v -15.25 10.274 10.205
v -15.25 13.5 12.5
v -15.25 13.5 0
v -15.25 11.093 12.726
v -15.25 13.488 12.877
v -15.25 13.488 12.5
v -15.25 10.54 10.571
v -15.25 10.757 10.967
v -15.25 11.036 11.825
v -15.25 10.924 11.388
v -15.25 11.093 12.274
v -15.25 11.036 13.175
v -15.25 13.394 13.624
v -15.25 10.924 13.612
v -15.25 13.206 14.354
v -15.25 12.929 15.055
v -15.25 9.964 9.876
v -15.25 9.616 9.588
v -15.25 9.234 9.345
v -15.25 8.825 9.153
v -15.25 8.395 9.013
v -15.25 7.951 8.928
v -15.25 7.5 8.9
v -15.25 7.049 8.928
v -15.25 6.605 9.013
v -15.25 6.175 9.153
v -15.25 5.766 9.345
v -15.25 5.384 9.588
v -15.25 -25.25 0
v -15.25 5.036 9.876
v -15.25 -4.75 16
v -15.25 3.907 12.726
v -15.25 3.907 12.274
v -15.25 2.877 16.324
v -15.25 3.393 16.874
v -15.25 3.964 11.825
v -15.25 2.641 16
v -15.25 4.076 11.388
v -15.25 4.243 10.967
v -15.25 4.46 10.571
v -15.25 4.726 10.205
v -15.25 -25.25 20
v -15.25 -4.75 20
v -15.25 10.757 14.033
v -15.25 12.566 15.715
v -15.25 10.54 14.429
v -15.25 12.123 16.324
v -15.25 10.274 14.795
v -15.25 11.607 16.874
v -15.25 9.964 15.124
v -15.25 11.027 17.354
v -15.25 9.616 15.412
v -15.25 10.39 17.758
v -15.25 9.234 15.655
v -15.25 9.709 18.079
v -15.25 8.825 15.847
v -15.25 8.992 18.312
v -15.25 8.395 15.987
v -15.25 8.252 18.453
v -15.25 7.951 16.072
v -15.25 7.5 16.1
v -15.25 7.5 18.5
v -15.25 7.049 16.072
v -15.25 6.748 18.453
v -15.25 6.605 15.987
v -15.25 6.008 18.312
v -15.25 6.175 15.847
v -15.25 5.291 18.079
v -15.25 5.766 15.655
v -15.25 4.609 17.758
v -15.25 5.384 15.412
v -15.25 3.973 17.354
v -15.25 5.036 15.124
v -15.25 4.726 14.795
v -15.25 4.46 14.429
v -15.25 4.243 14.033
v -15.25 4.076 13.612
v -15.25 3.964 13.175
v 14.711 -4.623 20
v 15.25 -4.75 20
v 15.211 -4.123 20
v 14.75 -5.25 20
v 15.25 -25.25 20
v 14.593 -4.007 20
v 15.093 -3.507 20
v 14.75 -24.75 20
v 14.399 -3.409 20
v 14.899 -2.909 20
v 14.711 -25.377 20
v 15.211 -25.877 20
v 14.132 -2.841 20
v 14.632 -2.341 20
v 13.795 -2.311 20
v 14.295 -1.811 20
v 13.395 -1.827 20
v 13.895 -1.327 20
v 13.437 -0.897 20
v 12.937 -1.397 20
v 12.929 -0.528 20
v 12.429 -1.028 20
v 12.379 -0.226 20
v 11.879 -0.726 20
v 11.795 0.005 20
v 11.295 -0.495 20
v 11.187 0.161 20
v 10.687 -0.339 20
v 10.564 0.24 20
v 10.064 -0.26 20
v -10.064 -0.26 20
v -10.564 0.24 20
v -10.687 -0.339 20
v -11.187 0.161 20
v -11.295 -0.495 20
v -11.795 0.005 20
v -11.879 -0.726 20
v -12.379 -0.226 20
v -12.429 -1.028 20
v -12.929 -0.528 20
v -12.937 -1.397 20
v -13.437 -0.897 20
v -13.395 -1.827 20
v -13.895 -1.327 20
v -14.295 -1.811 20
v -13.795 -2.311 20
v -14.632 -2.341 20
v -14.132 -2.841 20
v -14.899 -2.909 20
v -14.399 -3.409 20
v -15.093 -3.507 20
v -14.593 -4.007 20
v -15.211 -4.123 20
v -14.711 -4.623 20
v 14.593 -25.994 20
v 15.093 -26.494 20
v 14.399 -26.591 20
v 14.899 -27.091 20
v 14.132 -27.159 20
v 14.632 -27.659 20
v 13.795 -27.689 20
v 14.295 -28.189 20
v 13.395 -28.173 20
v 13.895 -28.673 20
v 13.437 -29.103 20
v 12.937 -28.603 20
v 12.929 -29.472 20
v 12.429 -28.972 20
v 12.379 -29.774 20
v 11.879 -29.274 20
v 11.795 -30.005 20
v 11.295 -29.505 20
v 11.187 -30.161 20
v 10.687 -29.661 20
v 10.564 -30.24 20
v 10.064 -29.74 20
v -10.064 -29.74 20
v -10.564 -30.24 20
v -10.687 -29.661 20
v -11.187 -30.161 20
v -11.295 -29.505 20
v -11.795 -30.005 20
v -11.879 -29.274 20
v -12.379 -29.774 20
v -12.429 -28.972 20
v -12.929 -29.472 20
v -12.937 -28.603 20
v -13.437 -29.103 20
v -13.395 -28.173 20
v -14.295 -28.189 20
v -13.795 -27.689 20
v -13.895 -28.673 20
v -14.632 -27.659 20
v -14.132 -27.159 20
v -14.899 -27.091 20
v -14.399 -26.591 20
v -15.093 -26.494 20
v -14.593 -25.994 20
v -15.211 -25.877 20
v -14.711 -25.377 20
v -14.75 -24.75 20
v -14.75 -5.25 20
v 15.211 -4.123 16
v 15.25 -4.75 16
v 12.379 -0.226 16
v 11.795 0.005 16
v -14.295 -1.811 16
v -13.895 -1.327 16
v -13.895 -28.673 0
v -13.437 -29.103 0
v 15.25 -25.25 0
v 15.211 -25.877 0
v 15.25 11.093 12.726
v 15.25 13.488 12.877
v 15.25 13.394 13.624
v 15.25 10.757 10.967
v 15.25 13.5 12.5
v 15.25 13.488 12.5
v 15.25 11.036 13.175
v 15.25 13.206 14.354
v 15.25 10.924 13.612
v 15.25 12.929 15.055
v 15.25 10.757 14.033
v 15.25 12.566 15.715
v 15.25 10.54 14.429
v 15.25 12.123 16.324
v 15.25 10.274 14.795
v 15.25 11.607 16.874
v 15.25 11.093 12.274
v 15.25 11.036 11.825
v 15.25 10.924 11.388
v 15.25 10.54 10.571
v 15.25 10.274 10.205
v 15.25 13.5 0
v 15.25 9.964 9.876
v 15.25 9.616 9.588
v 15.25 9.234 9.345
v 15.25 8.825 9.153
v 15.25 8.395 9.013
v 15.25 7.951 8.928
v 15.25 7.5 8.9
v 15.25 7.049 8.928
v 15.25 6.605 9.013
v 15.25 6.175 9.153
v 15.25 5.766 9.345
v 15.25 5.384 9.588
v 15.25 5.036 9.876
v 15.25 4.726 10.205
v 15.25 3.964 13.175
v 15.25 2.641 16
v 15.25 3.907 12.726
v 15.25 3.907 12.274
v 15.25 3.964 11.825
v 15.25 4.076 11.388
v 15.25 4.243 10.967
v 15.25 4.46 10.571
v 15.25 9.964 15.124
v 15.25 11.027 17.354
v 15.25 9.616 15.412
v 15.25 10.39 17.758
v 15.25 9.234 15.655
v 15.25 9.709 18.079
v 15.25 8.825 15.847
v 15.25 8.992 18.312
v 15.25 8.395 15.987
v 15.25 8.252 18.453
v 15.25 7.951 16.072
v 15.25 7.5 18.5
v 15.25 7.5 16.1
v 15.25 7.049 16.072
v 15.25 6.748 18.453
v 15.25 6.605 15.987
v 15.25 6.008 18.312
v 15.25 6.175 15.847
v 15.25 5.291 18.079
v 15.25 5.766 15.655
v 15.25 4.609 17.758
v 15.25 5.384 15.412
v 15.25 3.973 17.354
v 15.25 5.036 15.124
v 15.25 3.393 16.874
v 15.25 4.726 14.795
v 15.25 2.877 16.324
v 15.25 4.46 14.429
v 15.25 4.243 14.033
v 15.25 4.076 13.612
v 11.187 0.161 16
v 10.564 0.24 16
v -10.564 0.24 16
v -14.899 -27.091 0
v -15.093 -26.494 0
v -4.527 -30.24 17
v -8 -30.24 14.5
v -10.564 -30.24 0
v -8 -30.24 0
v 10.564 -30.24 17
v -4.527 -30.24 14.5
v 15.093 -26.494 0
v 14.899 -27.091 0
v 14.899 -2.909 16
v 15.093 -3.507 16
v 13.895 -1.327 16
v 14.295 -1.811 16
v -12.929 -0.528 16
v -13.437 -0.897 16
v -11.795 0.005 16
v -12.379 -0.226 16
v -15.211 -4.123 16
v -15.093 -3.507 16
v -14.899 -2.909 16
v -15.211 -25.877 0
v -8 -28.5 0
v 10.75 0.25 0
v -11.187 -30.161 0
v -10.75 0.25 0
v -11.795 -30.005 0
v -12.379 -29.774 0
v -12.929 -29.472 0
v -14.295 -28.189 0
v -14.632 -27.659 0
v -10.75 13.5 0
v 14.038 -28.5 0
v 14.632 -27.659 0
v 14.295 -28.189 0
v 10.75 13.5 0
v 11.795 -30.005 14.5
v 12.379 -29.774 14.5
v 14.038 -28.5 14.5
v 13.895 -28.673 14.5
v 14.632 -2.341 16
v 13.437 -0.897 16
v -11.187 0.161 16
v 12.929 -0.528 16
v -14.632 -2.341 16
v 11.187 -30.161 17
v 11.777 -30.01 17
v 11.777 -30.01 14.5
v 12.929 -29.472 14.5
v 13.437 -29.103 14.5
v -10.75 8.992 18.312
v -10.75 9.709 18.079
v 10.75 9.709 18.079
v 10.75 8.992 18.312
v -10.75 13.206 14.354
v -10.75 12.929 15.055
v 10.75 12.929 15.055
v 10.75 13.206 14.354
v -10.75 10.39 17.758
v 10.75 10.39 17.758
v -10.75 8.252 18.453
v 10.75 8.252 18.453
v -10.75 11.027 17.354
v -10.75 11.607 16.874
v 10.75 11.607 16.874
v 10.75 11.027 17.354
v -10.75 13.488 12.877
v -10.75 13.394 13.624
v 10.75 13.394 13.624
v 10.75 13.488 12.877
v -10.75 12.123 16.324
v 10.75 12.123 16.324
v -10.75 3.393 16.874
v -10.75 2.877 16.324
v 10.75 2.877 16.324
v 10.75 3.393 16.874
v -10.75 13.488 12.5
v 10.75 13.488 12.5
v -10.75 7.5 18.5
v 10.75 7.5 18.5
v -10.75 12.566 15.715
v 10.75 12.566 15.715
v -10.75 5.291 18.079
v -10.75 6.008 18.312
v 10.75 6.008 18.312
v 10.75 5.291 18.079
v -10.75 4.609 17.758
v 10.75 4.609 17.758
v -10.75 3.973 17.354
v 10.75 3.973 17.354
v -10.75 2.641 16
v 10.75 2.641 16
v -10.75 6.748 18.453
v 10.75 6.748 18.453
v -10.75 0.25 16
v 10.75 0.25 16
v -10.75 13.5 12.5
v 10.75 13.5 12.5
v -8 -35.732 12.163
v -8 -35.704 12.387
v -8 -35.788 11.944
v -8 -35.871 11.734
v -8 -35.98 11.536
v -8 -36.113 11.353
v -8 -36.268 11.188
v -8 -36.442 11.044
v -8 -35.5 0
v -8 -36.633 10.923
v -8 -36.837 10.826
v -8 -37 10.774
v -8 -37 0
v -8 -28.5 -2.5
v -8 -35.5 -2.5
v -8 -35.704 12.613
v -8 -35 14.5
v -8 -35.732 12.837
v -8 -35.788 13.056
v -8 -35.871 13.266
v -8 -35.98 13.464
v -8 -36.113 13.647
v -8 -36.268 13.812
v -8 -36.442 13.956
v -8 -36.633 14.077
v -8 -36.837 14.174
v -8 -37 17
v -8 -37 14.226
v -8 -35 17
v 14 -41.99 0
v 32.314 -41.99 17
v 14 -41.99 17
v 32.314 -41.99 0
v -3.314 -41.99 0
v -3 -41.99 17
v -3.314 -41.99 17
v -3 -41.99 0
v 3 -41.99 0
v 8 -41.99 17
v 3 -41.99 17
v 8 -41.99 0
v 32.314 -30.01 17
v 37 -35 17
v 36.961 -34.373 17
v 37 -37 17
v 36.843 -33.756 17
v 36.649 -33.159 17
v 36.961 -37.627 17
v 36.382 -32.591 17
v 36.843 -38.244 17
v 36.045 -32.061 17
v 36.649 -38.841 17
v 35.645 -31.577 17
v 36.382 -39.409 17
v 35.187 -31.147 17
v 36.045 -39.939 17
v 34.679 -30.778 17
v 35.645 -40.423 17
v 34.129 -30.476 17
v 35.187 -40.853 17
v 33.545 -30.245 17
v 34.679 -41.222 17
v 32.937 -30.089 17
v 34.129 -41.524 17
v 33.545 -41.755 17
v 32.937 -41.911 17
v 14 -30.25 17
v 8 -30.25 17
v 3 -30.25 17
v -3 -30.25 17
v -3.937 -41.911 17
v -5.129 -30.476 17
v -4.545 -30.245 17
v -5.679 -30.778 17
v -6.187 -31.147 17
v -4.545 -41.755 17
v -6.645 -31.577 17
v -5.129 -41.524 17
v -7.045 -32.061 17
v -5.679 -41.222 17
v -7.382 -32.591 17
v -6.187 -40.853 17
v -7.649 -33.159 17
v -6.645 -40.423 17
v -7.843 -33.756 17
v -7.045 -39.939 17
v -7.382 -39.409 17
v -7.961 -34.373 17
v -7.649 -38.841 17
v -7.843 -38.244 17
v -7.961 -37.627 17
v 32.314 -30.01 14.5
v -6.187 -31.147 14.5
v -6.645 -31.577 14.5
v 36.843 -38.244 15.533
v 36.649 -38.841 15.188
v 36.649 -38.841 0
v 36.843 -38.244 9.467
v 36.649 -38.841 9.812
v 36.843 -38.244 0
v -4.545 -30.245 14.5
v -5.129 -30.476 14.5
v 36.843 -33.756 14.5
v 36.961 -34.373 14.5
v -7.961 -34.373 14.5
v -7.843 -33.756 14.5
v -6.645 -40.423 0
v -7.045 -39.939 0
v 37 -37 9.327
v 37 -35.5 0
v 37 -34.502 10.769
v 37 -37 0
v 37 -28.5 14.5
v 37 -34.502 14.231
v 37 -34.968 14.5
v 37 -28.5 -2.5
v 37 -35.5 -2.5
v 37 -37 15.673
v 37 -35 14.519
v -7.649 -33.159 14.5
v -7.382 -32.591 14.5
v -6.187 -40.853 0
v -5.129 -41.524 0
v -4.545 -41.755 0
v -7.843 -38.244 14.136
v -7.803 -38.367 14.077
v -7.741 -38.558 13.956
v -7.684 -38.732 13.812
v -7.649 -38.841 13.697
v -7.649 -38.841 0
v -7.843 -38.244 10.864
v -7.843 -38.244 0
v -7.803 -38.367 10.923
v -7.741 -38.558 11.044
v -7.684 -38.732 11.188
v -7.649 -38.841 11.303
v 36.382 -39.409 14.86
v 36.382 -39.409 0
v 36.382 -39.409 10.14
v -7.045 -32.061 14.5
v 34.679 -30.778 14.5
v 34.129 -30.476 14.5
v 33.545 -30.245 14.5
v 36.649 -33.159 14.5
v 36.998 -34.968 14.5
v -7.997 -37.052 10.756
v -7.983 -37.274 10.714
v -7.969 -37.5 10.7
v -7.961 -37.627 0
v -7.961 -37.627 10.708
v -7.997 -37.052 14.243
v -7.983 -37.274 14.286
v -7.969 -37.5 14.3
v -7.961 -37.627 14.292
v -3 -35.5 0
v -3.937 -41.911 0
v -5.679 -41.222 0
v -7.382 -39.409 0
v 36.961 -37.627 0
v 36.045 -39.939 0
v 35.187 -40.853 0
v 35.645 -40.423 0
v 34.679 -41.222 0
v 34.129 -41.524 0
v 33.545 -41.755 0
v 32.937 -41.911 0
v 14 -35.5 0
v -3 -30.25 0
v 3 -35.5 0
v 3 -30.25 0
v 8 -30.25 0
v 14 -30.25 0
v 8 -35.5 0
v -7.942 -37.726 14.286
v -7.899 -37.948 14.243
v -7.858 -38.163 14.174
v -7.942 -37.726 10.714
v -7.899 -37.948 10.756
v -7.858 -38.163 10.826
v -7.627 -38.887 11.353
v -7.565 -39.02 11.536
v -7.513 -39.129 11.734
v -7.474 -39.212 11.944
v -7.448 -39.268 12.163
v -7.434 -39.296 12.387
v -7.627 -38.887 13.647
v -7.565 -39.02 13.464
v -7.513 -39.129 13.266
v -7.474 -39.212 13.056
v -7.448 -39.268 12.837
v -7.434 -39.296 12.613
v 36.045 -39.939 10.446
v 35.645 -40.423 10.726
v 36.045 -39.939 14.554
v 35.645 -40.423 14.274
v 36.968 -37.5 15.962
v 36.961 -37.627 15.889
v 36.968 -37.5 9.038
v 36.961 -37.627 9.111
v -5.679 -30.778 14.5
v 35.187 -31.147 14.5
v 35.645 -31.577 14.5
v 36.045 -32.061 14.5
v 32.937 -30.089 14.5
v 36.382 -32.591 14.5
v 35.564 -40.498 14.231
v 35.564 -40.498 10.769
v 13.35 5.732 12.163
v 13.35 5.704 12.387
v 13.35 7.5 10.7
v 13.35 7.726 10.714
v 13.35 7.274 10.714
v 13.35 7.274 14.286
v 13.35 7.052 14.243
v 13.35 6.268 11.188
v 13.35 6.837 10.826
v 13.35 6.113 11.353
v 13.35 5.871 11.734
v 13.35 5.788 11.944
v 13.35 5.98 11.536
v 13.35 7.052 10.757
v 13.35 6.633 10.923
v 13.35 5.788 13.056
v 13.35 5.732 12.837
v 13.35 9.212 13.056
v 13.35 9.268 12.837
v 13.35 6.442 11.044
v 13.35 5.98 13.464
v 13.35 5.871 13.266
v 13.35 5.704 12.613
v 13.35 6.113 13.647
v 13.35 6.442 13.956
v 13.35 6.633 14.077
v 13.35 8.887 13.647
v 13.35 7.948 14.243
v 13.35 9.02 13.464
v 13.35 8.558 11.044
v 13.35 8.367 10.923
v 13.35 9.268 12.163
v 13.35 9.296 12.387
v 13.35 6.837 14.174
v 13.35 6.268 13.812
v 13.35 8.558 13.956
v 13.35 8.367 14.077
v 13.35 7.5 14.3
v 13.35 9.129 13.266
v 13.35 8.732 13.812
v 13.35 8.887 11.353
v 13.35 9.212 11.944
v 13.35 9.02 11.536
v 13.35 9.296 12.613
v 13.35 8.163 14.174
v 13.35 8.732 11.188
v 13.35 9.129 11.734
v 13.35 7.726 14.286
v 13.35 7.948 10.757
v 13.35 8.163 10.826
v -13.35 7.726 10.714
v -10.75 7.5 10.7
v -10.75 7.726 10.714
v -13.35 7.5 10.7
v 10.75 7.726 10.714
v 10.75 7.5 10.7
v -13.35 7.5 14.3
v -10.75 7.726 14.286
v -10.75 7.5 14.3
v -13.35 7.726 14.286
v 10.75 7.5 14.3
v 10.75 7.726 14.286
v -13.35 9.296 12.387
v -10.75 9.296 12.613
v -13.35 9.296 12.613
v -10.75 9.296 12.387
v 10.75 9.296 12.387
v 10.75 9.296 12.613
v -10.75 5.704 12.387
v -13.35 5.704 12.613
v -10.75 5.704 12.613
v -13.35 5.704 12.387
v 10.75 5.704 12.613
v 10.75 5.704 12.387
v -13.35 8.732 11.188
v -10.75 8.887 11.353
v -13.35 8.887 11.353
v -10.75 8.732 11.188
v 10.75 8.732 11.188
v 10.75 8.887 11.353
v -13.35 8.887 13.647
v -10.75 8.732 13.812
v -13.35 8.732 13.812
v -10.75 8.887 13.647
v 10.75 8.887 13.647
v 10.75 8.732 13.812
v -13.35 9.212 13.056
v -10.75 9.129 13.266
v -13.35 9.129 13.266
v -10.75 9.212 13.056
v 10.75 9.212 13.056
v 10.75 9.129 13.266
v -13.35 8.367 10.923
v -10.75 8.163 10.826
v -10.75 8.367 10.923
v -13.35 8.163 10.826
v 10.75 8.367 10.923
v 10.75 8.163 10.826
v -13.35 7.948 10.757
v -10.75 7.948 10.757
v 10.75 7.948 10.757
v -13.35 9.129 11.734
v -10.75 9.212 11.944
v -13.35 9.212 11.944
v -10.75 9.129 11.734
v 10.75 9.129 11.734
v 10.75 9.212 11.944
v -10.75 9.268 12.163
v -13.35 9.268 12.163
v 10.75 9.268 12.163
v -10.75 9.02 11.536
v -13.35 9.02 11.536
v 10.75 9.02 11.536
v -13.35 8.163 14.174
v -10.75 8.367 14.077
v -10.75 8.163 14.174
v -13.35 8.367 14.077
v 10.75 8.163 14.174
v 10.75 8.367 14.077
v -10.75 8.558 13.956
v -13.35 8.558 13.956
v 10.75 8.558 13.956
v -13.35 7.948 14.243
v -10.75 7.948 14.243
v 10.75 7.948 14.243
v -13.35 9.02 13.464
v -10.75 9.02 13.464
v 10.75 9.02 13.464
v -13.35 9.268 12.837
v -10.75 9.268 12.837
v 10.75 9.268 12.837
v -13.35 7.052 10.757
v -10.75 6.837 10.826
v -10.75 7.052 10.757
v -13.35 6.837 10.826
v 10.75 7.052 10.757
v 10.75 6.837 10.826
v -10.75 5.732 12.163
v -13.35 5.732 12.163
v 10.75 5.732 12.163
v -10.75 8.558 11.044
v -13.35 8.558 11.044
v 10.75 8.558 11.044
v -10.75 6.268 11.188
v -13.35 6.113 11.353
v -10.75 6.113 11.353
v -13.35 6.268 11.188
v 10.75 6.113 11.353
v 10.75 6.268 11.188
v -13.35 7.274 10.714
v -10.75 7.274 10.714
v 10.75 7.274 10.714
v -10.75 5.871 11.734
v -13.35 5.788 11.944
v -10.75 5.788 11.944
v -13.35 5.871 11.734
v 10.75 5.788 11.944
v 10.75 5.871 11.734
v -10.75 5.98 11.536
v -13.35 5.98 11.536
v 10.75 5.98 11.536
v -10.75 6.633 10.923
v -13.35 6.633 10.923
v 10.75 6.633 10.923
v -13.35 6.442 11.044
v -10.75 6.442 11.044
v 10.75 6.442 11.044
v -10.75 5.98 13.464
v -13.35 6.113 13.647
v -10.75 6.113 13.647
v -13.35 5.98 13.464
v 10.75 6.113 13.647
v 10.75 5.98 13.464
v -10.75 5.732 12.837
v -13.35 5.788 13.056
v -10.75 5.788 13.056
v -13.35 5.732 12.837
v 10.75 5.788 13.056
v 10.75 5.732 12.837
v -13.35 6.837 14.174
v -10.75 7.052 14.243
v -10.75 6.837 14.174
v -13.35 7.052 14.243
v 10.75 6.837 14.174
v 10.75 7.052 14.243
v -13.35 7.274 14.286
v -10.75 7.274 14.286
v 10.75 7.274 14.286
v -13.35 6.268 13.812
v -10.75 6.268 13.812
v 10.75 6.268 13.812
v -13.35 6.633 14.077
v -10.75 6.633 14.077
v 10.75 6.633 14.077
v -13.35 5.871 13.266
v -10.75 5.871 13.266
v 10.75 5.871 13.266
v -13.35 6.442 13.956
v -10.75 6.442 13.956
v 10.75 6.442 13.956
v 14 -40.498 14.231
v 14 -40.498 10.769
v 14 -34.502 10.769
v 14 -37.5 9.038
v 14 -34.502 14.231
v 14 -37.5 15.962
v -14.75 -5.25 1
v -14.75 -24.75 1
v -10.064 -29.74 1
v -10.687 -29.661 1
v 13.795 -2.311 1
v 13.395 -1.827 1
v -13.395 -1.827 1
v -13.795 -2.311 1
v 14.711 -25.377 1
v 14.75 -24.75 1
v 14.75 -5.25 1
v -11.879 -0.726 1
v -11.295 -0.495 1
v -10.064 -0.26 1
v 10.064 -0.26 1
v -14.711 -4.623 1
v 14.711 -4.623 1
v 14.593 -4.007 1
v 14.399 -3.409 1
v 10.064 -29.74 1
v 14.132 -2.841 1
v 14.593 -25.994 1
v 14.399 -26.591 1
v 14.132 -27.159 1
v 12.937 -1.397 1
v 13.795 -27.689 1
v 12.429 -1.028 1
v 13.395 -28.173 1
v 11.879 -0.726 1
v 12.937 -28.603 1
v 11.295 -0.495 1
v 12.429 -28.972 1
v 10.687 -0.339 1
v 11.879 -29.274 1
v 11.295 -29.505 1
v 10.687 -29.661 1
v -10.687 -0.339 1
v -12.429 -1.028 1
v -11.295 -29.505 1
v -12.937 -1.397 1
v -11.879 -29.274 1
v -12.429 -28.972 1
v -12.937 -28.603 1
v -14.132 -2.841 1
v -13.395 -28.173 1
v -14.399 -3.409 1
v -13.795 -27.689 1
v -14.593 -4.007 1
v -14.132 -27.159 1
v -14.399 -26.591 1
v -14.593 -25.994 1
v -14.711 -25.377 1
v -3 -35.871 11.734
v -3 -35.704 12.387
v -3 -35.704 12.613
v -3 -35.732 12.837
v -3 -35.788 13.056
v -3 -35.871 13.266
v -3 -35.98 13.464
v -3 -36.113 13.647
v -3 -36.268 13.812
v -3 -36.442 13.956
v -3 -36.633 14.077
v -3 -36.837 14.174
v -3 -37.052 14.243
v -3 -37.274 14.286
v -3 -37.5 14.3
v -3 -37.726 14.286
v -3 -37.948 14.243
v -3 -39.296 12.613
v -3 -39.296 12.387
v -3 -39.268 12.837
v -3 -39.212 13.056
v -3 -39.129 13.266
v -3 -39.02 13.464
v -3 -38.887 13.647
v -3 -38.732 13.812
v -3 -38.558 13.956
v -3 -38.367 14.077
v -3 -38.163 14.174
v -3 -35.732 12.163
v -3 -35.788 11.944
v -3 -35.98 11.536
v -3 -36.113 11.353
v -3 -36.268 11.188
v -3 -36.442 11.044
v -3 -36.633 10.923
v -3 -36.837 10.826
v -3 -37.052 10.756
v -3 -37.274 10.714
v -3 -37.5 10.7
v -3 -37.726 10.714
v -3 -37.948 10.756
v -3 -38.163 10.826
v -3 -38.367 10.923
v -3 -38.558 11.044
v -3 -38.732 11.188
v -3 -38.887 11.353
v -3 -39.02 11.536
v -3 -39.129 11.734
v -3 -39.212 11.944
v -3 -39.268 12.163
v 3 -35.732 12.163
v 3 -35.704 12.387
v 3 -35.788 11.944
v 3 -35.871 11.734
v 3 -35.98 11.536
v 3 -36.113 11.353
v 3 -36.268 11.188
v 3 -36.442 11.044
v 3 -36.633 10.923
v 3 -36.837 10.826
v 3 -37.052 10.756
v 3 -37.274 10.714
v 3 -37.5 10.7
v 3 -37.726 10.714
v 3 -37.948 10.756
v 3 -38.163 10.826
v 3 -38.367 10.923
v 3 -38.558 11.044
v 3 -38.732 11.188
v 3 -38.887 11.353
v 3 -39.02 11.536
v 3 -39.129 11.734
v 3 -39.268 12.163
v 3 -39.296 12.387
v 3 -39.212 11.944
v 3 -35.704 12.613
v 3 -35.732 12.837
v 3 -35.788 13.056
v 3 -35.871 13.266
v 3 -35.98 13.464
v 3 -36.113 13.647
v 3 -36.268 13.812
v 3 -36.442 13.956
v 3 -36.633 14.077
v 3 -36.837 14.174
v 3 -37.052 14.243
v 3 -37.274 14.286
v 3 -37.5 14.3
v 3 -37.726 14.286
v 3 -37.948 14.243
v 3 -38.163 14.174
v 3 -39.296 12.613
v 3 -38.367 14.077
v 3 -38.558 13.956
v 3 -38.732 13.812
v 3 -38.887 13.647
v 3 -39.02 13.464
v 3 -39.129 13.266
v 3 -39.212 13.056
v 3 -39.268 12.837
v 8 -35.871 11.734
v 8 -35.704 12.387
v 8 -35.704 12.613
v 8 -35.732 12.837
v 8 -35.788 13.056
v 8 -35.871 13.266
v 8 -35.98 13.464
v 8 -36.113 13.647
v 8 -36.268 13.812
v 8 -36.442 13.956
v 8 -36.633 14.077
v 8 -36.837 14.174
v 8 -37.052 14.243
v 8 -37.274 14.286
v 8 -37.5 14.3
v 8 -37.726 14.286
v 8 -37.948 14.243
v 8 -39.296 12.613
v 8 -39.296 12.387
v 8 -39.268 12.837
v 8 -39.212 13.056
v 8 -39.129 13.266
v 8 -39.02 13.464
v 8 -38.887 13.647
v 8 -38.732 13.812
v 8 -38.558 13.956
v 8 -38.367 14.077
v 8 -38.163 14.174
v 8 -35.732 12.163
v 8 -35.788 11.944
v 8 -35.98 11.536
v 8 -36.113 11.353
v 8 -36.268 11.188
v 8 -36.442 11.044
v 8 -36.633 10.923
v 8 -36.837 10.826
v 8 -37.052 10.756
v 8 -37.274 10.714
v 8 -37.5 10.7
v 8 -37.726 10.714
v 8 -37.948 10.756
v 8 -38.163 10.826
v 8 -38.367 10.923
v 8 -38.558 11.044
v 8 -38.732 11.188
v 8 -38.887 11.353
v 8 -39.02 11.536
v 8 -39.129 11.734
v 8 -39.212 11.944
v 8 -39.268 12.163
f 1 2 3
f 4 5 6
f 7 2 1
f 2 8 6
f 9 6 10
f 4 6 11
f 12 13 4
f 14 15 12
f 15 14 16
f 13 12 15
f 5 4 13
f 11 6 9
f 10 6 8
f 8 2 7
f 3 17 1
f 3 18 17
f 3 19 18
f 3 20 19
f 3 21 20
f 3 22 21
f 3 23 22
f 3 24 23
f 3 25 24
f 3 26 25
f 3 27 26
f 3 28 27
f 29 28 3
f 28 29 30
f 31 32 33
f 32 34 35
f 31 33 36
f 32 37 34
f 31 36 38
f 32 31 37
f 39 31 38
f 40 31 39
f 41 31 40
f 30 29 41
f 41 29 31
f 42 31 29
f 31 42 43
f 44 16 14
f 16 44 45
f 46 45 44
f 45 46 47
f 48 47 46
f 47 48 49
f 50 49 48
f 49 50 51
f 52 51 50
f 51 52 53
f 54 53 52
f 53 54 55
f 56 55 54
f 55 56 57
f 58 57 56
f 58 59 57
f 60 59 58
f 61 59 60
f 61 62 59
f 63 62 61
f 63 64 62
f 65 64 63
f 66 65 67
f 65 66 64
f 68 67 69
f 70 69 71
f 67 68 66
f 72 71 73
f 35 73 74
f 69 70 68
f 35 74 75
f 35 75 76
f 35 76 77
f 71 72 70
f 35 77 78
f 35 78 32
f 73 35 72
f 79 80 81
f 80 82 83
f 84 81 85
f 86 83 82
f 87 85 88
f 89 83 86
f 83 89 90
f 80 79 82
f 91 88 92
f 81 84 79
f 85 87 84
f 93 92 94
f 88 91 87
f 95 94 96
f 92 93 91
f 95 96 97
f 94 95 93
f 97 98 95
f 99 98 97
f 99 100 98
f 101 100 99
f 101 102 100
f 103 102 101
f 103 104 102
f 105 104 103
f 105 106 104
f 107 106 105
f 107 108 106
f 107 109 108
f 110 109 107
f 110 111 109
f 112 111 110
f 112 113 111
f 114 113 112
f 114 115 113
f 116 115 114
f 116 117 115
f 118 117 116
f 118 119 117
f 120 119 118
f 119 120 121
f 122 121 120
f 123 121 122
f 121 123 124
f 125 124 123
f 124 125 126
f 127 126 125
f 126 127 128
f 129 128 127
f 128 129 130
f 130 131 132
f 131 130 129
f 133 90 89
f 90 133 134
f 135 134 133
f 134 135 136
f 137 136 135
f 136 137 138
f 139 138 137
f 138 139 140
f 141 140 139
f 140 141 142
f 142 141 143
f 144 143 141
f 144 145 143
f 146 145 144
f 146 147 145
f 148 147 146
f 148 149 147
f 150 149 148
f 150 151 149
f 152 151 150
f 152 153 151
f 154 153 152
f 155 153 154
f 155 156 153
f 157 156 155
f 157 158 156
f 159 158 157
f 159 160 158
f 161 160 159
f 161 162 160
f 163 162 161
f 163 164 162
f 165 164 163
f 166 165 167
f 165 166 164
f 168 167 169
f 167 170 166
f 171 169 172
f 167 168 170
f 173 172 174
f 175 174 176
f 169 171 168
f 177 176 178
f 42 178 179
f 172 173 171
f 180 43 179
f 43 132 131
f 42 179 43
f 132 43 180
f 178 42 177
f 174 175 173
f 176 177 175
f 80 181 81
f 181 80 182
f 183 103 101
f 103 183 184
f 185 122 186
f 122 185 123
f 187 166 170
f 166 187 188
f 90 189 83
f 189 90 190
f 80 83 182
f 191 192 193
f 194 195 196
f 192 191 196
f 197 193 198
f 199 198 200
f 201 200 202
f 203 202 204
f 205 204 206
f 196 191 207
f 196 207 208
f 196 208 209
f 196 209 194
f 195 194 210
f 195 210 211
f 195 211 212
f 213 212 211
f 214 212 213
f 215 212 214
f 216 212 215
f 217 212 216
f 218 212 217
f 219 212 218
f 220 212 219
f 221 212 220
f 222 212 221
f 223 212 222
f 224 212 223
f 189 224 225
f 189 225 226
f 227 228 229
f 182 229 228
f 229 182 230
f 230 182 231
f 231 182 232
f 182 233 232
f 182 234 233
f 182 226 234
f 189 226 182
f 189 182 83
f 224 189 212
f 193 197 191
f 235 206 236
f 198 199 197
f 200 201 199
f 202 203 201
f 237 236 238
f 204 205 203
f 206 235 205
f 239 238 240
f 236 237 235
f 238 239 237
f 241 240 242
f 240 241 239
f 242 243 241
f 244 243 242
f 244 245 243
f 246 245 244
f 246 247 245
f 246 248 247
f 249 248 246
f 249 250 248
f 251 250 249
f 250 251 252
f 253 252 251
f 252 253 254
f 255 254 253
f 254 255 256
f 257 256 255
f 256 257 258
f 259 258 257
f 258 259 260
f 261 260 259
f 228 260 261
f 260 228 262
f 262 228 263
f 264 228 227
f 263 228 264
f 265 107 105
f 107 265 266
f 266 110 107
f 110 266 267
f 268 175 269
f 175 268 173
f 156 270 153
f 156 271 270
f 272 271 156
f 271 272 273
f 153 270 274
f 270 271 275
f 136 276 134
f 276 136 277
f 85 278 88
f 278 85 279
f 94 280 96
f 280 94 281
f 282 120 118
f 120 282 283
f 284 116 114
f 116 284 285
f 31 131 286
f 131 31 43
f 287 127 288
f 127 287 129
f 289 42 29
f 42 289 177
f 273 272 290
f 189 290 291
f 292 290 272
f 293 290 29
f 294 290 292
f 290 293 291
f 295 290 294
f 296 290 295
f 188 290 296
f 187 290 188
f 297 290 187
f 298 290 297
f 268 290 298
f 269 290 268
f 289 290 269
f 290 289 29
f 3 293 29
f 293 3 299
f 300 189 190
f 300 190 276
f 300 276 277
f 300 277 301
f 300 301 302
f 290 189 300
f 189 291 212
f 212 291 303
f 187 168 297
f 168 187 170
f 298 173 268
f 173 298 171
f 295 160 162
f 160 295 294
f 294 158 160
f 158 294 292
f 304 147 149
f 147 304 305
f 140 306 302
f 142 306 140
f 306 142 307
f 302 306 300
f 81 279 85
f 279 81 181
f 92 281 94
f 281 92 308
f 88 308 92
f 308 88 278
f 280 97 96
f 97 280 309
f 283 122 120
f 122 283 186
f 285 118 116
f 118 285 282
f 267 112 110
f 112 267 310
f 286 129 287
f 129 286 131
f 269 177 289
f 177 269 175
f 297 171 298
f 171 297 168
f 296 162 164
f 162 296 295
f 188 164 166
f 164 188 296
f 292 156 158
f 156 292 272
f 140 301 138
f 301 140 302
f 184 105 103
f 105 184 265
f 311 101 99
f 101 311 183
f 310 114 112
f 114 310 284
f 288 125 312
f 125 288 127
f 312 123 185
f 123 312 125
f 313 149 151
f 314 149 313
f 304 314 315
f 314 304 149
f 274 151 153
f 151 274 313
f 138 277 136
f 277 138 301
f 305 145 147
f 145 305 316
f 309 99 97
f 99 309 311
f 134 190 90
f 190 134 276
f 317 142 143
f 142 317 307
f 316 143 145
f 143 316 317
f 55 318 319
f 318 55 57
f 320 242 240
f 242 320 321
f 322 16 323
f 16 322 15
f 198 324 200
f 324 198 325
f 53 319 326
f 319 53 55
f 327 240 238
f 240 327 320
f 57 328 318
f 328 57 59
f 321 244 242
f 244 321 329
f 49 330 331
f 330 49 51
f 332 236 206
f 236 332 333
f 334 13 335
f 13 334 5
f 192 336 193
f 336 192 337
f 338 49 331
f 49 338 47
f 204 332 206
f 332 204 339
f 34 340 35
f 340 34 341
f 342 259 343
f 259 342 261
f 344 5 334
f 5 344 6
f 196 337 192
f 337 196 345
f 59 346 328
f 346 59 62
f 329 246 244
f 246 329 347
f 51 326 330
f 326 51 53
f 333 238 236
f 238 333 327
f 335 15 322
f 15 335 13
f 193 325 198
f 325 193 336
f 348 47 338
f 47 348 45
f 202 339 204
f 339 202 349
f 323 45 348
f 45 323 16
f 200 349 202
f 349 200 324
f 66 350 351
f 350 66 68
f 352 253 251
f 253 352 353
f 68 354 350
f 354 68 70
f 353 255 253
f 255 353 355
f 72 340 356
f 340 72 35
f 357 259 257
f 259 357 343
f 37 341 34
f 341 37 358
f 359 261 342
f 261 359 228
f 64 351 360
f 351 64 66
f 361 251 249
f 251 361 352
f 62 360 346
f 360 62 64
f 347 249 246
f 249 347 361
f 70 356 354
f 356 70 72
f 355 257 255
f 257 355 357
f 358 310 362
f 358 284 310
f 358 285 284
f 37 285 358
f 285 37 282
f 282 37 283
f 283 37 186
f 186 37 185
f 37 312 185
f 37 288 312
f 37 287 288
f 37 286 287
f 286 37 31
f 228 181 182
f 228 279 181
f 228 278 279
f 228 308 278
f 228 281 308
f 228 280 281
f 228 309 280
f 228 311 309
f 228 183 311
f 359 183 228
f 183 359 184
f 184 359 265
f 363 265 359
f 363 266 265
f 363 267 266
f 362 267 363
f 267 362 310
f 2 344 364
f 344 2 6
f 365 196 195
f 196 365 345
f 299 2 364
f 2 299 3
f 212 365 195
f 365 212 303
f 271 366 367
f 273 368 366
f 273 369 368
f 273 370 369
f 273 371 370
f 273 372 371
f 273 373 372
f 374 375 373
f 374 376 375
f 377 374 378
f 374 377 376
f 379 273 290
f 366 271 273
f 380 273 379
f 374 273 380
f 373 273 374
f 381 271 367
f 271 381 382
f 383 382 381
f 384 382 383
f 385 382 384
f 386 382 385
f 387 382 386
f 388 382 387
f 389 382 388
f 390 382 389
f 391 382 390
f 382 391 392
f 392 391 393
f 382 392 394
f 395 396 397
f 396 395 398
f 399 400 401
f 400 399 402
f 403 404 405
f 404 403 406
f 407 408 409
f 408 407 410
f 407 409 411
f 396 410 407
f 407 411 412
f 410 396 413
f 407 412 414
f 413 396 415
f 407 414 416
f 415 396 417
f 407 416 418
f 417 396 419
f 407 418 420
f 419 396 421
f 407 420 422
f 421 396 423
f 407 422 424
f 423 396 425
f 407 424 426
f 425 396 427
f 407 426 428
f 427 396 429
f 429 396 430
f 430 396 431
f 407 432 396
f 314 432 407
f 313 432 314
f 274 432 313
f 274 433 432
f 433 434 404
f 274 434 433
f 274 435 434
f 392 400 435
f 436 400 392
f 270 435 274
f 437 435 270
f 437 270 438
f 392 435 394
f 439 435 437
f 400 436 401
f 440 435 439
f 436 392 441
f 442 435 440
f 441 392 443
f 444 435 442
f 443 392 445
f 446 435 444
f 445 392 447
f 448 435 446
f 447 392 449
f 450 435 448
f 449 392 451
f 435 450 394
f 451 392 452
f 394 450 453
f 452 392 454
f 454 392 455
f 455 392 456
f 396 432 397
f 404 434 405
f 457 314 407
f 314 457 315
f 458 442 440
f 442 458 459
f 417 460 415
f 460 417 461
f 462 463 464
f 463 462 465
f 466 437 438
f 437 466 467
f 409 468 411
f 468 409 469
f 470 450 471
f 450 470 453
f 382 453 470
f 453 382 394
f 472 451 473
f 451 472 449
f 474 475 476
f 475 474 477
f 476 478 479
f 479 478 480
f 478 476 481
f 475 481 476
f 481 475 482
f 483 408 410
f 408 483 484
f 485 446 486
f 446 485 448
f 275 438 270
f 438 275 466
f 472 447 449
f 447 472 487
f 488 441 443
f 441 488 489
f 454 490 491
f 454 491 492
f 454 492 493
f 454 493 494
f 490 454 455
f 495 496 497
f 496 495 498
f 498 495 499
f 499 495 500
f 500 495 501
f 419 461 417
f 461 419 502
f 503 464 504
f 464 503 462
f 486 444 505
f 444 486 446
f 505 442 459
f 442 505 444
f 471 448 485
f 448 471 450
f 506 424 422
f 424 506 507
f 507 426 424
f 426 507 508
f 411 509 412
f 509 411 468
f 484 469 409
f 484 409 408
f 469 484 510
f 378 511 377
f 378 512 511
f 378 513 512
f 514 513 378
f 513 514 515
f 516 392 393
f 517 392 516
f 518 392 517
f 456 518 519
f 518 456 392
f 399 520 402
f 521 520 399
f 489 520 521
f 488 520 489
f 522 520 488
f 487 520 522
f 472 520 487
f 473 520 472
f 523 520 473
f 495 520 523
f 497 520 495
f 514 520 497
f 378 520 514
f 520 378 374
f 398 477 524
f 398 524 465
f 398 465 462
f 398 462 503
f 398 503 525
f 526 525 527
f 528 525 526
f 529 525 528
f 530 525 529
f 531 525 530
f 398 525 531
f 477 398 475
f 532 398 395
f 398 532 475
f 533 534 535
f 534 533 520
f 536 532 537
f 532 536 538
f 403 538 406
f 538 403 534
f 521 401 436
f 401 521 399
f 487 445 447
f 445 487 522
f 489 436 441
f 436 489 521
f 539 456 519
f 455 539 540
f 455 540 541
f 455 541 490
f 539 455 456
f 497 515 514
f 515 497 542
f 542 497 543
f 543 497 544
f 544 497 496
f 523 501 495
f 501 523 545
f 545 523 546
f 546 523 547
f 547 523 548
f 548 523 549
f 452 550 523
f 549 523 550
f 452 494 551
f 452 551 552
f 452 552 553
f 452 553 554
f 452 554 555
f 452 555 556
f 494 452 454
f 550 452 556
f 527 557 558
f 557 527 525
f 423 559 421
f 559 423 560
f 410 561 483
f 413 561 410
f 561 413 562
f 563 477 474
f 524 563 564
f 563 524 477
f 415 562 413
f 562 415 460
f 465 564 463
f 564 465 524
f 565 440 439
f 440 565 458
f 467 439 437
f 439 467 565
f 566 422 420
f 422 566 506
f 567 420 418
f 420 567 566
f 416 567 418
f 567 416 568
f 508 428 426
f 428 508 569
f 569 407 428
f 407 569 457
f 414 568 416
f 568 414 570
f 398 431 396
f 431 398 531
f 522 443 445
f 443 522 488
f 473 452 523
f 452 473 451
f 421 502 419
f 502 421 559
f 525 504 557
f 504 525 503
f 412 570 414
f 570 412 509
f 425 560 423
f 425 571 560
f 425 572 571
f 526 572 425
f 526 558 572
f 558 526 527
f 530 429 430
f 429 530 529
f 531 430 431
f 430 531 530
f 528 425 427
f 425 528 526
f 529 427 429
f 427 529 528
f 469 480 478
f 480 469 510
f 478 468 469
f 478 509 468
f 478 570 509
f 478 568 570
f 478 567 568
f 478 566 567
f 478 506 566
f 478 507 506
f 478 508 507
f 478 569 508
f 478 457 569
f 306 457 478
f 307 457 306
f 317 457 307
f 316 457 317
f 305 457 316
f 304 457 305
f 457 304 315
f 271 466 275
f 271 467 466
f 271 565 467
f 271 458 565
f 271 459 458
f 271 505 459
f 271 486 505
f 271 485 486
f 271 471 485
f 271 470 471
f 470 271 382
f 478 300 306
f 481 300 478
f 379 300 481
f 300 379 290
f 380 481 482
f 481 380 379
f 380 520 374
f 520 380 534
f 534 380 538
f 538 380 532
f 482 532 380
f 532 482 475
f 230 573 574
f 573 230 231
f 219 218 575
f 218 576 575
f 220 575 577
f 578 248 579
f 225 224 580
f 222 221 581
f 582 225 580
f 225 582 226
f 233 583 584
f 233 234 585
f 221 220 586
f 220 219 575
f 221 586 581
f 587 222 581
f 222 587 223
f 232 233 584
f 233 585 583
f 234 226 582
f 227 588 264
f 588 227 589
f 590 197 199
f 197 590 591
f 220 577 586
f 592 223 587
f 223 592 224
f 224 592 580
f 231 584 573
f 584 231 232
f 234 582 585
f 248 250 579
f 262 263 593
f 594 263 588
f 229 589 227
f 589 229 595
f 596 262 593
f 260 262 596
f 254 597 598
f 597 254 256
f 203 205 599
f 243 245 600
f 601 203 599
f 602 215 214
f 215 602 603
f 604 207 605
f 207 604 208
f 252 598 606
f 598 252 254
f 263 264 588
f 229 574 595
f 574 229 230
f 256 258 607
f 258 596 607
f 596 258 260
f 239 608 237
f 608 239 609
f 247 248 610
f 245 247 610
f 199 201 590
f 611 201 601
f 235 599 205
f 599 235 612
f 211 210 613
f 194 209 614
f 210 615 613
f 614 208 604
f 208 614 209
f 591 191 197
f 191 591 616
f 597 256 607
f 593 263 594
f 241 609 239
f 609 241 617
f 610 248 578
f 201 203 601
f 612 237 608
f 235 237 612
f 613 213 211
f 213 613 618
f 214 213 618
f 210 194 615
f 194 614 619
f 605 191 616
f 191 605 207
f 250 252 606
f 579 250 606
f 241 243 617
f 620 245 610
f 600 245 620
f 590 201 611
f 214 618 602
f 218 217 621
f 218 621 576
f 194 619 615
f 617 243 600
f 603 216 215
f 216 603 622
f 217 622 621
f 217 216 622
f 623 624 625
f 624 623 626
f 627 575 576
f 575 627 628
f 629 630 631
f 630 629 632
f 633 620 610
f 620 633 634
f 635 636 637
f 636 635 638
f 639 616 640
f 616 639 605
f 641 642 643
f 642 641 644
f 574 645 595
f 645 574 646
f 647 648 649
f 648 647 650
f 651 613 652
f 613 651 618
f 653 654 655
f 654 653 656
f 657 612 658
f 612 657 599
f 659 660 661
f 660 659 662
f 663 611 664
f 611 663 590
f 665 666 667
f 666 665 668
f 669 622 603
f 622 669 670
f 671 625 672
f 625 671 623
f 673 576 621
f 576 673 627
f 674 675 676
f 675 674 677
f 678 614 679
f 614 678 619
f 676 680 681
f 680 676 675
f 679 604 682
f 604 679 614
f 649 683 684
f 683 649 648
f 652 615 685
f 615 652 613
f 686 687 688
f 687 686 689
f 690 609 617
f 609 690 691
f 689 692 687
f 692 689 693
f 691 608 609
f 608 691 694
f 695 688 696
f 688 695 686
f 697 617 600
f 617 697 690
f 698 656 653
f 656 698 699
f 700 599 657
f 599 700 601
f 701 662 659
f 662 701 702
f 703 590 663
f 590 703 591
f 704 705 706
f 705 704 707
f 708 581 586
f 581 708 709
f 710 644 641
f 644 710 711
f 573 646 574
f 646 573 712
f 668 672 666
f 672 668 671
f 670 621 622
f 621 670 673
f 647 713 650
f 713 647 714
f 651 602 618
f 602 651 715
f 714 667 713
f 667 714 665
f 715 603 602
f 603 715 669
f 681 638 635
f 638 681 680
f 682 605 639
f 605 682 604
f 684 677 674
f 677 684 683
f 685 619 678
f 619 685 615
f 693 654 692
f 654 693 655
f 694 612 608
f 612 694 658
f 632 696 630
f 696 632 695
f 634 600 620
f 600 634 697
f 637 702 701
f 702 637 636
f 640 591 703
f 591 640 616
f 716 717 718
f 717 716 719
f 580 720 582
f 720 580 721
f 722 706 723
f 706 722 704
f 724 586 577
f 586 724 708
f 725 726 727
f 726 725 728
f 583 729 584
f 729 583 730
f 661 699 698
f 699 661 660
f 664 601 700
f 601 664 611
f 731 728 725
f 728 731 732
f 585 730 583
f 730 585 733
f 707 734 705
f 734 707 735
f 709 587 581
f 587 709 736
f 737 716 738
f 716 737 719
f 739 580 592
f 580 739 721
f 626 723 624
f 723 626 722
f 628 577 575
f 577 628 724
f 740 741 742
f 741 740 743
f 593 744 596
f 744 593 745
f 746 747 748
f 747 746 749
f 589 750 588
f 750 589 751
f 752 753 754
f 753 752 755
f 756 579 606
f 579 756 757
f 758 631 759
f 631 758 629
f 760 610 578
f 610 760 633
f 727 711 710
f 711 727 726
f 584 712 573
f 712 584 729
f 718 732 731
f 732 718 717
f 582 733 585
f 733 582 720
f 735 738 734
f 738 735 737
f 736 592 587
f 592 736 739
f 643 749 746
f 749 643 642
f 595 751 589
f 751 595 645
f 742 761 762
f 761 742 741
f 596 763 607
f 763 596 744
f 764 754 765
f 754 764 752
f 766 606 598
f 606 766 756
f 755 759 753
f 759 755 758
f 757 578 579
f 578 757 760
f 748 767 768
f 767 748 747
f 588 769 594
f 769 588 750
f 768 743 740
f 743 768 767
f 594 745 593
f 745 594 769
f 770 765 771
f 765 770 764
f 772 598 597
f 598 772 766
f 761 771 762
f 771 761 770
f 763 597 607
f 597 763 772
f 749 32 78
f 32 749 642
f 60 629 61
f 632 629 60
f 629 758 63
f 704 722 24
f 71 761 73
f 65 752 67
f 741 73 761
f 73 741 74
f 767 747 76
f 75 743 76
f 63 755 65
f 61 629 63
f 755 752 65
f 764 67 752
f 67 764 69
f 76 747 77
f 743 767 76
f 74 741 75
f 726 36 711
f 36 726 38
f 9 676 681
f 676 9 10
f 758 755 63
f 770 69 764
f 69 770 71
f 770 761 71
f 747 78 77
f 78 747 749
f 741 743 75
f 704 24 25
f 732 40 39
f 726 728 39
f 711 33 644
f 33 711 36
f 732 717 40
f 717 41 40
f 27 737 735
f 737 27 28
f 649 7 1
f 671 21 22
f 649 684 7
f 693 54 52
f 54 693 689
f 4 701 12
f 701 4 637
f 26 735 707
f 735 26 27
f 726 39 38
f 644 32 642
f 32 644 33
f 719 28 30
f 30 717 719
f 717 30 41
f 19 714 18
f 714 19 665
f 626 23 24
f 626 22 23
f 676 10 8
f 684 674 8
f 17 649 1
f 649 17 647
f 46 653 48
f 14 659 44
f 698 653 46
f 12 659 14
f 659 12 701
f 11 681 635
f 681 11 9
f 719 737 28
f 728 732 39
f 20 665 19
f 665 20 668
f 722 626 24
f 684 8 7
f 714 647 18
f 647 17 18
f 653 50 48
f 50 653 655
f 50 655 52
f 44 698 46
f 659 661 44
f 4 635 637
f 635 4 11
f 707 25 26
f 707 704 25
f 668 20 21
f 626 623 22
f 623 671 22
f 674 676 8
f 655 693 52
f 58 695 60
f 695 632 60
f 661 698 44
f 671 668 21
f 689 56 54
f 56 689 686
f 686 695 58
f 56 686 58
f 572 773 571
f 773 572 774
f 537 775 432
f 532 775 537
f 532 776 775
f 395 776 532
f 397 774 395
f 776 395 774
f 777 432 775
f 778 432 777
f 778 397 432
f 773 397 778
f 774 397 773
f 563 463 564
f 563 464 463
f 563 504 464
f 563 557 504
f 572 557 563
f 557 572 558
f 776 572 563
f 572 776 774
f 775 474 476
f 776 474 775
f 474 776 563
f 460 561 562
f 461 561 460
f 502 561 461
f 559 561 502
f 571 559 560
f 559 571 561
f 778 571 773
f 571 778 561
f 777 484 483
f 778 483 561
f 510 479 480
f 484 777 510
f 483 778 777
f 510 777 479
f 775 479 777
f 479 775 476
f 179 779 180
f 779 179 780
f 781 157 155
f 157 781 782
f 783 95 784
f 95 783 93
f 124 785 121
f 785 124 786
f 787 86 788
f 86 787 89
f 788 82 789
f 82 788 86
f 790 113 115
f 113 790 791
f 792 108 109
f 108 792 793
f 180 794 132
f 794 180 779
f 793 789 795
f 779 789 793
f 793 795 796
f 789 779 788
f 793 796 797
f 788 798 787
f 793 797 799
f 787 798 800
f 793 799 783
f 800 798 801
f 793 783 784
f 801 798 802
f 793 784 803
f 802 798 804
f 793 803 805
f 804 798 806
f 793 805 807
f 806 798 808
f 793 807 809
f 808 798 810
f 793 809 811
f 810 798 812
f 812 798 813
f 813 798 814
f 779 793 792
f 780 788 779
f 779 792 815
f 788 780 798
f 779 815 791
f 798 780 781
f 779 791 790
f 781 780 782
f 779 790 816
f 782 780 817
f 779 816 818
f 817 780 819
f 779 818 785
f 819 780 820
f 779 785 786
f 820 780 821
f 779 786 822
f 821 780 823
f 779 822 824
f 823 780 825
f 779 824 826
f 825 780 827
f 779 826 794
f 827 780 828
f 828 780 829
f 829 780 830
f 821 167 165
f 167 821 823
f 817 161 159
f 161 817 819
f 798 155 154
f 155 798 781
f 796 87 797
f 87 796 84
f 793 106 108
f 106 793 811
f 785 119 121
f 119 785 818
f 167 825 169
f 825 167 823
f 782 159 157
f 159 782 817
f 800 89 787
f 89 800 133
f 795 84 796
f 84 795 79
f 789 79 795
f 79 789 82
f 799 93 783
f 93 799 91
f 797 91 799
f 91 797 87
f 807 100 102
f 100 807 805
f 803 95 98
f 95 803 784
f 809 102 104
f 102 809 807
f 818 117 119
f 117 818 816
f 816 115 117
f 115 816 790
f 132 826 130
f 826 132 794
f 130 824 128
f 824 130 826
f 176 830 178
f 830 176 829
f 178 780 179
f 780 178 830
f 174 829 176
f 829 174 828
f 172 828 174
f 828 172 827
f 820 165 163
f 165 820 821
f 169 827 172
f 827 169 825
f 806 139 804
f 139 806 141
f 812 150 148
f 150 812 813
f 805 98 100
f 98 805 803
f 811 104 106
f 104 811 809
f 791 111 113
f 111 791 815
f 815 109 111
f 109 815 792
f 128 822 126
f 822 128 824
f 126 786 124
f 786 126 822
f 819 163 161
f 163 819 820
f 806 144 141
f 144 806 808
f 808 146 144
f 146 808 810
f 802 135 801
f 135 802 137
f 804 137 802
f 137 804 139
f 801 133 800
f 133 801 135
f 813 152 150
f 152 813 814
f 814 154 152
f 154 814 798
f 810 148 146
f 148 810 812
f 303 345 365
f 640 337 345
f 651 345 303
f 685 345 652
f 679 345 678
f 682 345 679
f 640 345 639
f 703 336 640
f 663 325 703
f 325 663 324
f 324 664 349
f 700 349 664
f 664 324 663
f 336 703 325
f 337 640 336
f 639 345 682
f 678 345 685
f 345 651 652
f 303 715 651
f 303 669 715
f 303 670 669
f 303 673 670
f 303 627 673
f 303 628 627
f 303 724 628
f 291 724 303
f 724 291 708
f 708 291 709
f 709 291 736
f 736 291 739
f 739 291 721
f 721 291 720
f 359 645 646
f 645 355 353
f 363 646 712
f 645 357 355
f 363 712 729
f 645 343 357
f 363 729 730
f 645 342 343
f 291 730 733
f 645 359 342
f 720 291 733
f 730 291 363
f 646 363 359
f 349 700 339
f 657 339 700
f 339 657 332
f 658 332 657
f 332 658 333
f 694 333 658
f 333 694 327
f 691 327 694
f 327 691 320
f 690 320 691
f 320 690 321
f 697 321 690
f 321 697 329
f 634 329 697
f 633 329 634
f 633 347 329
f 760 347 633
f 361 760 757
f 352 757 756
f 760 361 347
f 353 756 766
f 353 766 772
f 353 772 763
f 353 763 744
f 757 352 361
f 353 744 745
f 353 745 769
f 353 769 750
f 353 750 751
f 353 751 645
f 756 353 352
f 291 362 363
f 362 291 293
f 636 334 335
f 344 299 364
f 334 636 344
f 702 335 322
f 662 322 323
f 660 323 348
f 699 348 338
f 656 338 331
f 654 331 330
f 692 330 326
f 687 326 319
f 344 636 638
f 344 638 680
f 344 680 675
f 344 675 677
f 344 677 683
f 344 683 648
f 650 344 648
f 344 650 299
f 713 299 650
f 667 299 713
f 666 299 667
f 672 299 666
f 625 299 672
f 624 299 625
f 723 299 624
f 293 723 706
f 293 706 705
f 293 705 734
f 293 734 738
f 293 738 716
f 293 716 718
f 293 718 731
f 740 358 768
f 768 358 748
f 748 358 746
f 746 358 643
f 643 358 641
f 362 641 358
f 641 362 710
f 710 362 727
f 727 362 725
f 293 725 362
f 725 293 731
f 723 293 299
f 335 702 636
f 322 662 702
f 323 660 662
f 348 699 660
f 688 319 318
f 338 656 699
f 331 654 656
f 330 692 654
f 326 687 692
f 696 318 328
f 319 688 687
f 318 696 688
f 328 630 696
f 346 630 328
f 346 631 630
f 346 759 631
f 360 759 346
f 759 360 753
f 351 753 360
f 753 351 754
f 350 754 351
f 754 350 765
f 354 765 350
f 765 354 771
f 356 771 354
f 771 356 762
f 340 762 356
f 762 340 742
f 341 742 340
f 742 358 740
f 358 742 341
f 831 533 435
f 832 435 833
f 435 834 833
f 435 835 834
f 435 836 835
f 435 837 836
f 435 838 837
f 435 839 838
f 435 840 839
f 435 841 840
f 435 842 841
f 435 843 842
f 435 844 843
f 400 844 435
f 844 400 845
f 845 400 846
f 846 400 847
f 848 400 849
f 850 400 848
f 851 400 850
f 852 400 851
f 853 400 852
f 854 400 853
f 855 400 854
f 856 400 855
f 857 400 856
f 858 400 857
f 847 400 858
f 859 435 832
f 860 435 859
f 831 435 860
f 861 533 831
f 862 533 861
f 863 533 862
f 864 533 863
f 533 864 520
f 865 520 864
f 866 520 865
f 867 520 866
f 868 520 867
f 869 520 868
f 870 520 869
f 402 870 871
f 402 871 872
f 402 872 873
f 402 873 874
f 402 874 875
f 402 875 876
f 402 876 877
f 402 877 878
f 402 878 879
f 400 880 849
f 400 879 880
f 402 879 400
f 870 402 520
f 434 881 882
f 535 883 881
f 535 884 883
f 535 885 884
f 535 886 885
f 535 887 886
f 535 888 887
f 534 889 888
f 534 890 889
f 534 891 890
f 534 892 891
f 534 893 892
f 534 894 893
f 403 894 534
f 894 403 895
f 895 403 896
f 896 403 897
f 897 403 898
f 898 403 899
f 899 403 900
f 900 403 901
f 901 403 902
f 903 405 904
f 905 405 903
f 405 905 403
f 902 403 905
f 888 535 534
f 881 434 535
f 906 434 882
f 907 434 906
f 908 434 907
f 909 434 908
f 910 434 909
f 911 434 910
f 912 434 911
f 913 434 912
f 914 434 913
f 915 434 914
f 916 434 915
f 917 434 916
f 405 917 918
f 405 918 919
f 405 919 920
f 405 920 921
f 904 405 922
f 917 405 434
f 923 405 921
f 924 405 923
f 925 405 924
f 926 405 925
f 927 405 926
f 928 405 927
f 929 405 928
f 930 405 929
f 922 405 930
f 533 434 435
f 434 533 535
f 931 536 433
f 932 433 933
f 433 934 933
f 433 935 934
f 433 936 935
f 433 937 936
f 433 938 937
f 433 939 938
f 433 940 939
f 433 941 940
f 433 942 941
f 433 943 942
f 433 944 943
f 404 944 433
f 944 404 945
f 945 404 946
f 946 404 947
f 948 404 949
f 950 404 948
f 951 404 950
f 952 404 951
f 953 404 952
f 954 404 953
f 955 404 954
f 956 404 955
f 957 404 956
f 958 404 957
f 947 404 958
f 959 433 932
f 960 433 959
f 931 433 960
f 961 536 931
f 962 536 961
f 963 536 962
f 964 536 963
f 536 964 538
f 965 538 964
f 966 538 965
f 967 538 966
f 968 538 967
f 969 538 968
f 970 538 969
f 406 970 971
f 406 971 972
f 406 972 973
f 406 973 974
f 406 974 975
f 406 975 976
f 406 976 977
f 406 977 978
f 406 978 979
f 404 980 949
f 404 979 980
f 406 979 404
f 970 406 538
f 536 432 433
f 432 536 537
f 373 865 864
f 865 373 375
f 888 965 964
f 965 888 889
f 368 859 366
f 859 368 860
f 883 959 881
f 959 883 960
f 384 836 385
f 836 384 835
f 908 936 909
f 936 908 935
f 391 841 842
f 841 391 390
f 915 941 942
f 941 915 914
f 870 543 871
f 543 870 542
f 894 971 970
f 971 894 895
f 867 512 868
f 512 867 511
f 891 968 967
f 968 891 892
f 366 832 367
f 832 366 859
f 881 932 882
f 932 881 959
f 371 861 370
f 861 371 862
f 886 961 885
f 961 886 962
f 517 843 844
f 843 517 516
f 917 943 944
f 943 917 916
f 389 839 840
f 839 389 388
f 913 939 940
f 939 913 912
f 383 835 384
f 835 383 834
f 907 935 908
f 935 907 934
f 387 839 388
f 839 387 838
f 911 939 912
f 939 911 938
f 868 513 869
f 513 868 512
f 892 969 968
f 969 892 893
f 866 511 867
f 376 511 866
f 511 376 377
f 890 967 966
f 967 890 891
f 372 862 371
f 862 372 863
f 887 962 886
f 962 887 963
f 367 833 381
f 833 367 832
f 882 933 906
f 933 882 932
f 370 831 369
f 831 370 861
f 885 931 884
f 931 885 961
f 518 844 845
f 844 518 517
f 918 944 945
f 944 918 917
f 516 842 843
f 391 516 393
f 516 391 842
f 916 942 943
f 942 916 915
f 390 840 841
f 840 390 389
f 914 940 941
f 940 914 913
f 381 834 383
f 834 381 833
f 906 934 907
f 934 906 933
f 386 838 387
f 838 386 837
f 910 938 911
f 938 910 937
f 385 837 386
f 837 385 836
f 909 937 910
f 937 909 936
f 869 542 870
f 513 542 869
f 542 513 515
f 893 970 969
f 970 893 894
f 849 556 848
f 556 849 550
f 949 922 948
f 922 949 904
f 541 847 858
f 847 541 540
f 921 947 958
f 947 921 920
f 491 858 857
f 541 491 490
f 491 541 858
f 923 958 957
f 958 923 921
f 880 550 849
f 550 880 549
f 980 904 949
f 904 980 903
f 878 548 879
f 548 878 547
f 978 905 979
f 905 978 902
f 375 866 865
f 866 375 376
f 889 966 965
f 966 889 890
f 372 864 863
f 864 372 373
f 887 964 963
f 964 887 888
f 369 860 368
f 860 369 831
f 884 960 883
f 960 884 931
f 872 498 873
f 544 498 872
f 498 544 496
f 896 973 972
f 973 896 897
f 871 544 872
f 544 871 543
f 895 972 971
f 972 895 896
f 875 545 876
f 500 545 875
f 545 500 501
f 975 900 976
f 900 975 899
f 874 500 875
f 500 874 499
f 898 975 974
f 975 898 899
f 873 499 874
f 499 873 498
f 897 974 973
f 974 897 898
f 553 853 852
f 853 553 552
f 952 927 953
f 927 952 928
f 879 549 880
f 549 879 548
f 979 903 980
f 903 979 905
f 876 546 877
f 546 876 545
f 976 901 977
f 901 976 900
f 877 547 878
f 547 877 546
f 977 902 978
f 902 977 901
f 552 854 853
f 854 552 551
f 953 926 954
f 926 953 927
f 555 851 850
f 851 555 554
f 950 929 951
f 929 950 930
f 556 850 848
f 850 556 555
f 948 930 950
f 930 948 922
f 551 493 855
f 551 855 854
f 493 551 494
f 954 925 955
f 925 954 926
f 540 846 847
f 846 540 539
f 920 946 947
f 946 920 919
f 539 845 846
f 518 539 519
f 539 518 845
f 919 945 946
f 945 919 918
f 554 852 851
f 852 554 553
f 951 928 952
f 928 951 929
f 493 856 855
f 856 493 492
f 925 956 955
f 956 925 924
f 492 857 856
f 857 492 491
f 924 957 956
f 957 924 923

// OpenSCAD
$fn = 50;


difference() {
	union() {
		translate(v = [0, -15.0000000000, 0]) {
			hull() {
				translate(v = [-10.2500000000, 10.2500000000, 0]) {
					cylinder(h = 20, r = 5);
				}
				translate(v = [10.2500000000, 10.2500000000, 0]) {
					cylinder(h = 20, r = 5);
				}
				translate(v = [-10.2500000000, -10.2500000000, 0]) {
					cylinder(h = 20, r = 5);
				}
				translate(v = [10.2500000000, -10.2500000000, 0]) {
					cylinder(h = 20, r = 5);
				}
			}
		}
		translate(v = [-4.7500000000, 7.5000000000, 12.5000000000]) {
			rotate(a = [0, 90, 0]) {
				cylinder(h = 20, r = 6.0000000000);
			}
		}
		translate(v = [-4.7500000000, -15.0000000000, 0.0000000000]) {
			cube(size = [20, 22.5000000000, 16]);
		}
		translate(v = [-4.7500000000, -13.5000000000, 0.0000000000]) {
			cube(size = [20, 27, 12.5000000000]);
		}
		translate(v = [-15.2500000000, 7.5000000000, 12.5000000000]) {
			rotate(a = [0, 90, 0]) {
				cylinder(h = 20, r = 6.0000000000);
			}
		}
		translate(v = [-15.2500000000, -15.0000000000, 0.0000000000]) {
			cube(size = [20, 22.5000000000, 16]);
		}
		translate(v = [-15.2500000000, -13.5000000000, 0.0000000000]) {
			cube(size = [20, 27, 12.5000000000]);
		}
		translate(v = [14.5000000000, -36.0000000000, 0.0000000000]) {
			hull() {
				translate(v = [-17.5000000000, 1.0000000000, 0]) {
					cylinder(h = 17, r = 5);
				}
				translate(v = [17.5000000000, 1.0000000000, 0]) {
					cylinder(h = 17, r = 5);
				}
				translate(v = [-17.5000000000, -1.0000000000, 0]) {
					cylinder(h = 17, r = 5);
				}
				translate(v = [17.5000000000, -1.0000000000, 0]) {
					cylinder(h = 17, r = 5);
				}
			}
		}
		translate(v = [-8.0000000000, -35.5000000000, -2.5000000000]) {
			cube(size = [45, 7, 17]);
		}
	}
	union() {
		translate(v = [15.2500000000, 7.5000000000, 12.5000000000]) {
			rotate(a = [0, 90, 0]) {
				difference() {
					union() {
						translate(v = [0, 0, -20.0000000000]) {
							rotate(a = [0, 0, 0]) {
								difference() {
									union() {
										linear_extrude(height = 2.5000000000) {
											polygon(points = [[3.4620000000, 0.0000000000], [1.7310000000, 2.9981799479], [-1.7310000000, 2.9981799479], [-3.4620000000, 0.0000000000], [-1.7310000000, -2.9981799479], [1.7310000000, -2.9981799479]]);
										}
									}
									union();
								}
							}
						}
						translate(v = [0, 0, -20.0000000000]) {
							rotate(a = [0, 0, 0]) {
								difference() {
									union() {
										linear_extrude(height = 2.5000000000) {
											polygon(points = [[3.4620000000, 0.0000000000], [1.7310000000, 2.9981799479], [-1.7310000000, 2.9981799479], [-3.4620000000, 0.0000000000], [-1.7310000000, -2.9981799479], [1.7310000000, -2.9981799479]]);
										}
									}
									union();
								}
							}
						}
						translate(v = [0, 0, -20.0000000000]) {
							rotate(a = [0, 0, 0]) {
								difference() {
									union() {
										linear_extrude(height = 2.5000000000) {
											polygon(points = [[3.4620000000, 0.0000000000], [1.7310000000, 2.9981799479], [-1.7310000000, 2.9981799479], [-3.4620000000, 0.0000000000], [-1.7310000000, -2.9981799479], [1.7310000000, -2.9981799479]]);
										}
									}
									union();
								}
							}
						}
						translate(v = [0, 0, -20.0000000000]) {
							cylinder(h = 20, r = 1.5000000000);
						}
						translate(v = [0, 0, -1.9000000000]) {
							cylinder(h = 1.9000000000, r1 = 1.8000000000, r2 = 3.6000000000);
						}
						translate(v = [0, 0, -20.0000000000]) {
							cylinder(h = 20, r = 1.8000000000);
						}
						translate(v = [0, 0, -20.0000000000]) {
							cylinder(h = 20, r = 1.5000000000);
						}
					}
					union();
				}
			}
		}
		translate(v = [-15.2500000000, 7.5000000000, 12.5000000000]) {
			rotate(a = [0, 270, 0]) {
				difference() {
					union() {
						translate(v = [0, 0, -20.0000000000]) {
							rotate(a = [0, 0, 0]) {
								difference() {
									union() {
										linear_extrude(height = 2.5000000000) {
											polygon(points = [[3.4620000000, 0.0000000000], [1.7310000000, 2.9981799479], [-1.7310000000, 2.9981799479], [-3.4620000000, 0.0000000000], [-1.7310000000, -2.9981799479], [1.7310000000, -2.9981799479]]);
										}
									}
									union();
								}
							}
						}
						translate(v = [0, 0, -20.0000000000]) {
							rotate(a = [0, 0, 0]) {
								difference() {
									union() {
										linear_extrude(height = 2.5000000000) {
											polygon(points = [[3.4620000000, 0.0000000000], [1.7310000000, 2.9981799479], [-1.7310000000, 2.9981799479], [-3.4620000000, 0.0000000000], [-1.7310000000, -2.9981799479], [1.7310000000, -2.9981799479]]);
										}
									}
									union();
								}
							}
						}
						translate(v = [0, 0, -20.0000000000]) {
							rotate(a = [0, 0, 0]) {
								difference() {
									union() {
										linear_extrude(height = 2.5000000000) {
											polygon(points = [[3.4620000000, 0.0000000000], [1.7310000000, 2.9981799479], [-1.7310000000, 2.9981799479], [-3.4620000000, 0.0000000000], [-1.7310000000, -2.9981799479], [1.7310000000, -2.9981799479]]);
										}
									}
									union();
								}
							}
						}
						translate(v = [0, 0, -20.0000000000]) {
							cylinder(h = 20, r = 1.5000000000);
						}
						translate(v = [0, 0, -1.9000000000]) {
							cylinder(h = 1.9000000000, r1 = 1.8000000000, r2 = 3.6000000000);
						}
						translate(v = [0, 0, -20.0000000000]) {
							cylinder(h = 20, r = 1.8000000000);
						}
						translate(v = [0, 0, -20.0000000000]) {
							cylinder(h = 20, r = 1.5000000000);
						}
					}
					union();
				}
			}
		}
		translate(v = [14.0000000000, -37.5000000000, 12.5000000000]) {
			rotate(a = [0, 90, 0]) {
				difference() {
					union() {
						linear_extrude(height = 25) {
							polygon(points = [[3.4620000000, 0.0000000000], [1.7310000000, 2.9981799479], [-1.7310000000, 2.9981799479], [-3.4620000000, 0.0000000000], [-1.7310000000, -2.9981799479], [1.7310000000, -2.9981799479]]);
						}
					}
					union();
				}
			}
		}
		translate(v = [0.0000000000, -15.0000000000, 1]) {
			hull() {
				translate(v = [-9.7500000000, 9.7500000000, 0]) {
					cylinder(h = 40, r = 5);
				}
				translate(v = [9.7500000000, 9.7500000000, 0]) {
					cylinder(h = 40, r = 5);
				}
				translate(v = [-9.7500000000, -9.7500000000, 0]) {
					cylinder(h = 40, r = 5);
				}
				translate(v = [9.7500000000, -9.7500000000, 0]) {
					cylinder(h = 40, r = 5);
				}
			}
		}
		translate(v = [-0.2500000000, 0.2500000000, 0.0000000000]) {
			cube(size = [11, 17.5000000000, 20]);
		}
		translate(v = [-10.7500000000, 0.2500000000, 0.0000000000]) {
			cube(size = [11, 17.5000000000, 20]);
		}
		translate(v = [-3.0000000000, -47.7500000000, 0.0000000000]) {
			cube(size = [6, 17.5000000000, 20]);
		}
		translate(v = [8.0000000000, -47.7500000000, 0.0000000000]) {
			cube(size = [6, 17.5000000000, 20]);
		}
		translate(v = [-8.0000000000, -37.5000000000, 12.5000000000]) {
			rotate(a = [0, 90, 0]) {
				cylinder(h = 45, r = 1.8000000000);
			}
		}
	}
}
